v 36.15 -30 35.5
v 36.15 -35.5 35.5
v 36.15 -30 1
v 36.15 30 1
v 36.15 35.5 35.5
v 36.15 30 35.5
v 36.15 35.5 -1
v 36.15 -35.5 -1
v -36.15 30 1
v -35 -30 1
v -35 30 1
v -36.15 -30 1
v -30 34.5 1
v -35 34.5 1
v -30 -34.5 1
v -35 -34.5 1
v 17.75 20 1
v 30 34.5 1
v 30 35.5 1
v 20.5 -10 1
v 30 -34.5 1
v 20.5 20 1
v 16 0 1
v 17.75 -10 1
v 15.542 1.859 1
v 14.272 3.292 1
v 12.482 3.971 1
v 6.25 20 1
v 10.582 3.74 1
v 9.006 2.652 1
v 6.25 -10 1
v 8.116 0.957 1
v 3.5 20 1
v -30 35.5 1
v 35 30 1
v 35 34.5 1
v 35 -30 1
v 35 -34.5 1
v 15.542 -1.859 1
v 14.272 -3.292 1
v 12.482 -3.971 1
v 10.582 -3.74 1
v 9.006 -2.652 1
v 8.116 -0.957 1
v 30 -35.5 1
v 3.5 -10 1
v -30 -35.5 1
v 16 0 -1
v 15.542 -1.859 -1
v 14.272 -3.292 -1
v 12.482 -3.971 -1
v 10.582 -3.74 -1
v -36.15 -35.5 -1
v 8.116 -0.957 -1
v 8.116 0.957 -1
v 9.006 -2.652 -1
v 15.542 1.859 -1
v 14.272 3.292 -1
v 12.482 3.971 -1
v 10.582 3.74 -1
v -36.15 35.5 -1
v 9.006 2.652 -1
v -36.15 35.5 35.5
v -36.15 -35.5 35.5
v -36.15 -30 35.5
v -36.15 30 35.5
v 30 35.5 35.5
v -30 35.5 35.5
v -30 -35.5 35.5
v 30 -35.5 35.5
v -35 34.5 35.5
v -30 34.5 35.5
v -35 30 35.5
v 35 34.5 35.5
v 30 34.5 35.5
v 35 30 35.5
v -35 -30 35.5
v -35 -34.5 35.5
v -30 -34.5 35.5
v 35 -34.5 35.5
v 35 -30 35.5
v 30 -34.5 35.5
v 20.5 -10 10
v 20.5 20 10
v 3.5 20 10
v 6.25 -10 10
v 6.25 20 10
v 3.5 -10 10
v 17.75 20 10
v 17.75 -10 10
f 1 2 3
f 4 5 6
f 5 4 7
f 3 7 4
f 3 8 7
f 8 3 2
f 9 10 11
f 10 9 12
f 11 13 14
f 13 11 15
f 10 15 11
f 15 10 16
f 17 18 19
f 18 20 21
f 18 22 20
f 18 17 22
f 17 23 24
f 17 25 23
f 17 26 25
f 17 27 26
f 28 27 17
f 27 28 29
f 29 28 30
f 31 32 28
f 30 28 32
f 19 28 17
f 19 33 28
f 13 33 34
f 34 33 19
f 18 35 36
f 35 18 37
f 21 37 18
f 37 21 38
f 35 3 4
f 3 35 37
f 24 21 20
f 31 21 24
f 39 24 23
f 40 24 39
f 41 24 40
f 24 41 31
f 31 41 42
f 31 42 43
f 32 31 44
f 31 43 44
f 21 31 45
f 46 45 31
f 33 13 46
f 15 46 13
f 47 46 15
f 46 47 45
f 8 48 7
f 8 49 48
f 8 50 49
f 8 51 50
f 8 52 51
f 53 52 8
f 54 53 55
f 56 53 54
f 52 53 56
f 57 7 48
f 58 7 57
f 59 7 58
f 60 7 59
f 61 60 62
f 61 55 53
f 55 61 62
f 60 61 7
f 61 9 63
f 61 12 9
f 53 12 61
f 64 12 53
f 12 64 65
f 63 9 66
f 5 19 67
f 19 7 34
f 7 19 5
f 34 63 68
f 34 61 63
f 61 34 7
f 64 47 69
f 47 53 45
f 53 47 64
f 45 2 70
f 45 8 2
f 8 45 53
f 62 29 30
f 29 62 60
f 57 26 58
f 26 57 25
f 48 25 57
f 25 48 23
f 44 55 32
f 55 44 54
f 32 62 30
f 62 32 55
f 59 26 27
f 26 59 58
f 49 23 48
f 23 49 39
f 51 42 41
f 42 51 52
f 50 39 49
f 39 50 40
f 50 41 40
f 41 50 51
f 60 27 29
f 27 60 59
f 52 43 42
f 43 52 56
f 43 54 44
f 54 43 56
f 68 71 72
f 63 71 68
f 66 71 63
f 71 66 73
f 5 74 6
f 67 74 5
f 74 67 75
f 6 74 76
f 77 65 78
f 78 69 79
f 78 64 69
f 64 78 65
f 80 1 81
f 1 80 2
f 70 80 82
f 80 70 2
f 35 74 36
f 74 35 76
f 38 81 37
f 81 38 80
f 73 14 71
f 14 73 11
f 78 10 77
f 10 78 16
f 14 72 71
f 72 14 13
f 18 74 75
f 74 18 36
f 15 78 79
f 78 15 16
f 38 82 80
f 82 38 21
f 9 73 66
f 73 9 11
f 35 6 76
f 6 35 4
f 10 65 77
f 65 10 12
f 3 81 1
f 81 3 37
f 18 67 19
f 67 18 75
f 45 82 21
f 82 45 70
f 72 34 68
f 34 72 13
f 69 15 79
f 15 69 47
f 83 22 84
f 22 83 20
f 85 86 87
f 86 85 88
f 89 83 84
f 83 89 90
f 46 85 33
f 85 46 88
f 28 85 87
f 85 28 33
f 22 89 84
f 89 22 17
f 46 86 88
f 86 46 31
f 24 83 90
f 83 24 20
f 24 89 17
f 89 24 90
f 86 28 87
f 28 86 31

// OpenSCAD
difference()
{
    cube([72.3,71,2], true);
    translate([12,0,-1.2]){
        cylinder(h=5, d=8);
    }
}

translate([0,0,18]){
    difference(){
        cube([72.3,71,35], true);
        cube([70,69,36], true);
        cube([75,60,36], true);
        cube([60,72,36], true);
    }
}

translate([12,5,5]){
    difference()
    {
        cube([17,30,10], true);
        cube([11.5,32,12], true);
       
    }
}
